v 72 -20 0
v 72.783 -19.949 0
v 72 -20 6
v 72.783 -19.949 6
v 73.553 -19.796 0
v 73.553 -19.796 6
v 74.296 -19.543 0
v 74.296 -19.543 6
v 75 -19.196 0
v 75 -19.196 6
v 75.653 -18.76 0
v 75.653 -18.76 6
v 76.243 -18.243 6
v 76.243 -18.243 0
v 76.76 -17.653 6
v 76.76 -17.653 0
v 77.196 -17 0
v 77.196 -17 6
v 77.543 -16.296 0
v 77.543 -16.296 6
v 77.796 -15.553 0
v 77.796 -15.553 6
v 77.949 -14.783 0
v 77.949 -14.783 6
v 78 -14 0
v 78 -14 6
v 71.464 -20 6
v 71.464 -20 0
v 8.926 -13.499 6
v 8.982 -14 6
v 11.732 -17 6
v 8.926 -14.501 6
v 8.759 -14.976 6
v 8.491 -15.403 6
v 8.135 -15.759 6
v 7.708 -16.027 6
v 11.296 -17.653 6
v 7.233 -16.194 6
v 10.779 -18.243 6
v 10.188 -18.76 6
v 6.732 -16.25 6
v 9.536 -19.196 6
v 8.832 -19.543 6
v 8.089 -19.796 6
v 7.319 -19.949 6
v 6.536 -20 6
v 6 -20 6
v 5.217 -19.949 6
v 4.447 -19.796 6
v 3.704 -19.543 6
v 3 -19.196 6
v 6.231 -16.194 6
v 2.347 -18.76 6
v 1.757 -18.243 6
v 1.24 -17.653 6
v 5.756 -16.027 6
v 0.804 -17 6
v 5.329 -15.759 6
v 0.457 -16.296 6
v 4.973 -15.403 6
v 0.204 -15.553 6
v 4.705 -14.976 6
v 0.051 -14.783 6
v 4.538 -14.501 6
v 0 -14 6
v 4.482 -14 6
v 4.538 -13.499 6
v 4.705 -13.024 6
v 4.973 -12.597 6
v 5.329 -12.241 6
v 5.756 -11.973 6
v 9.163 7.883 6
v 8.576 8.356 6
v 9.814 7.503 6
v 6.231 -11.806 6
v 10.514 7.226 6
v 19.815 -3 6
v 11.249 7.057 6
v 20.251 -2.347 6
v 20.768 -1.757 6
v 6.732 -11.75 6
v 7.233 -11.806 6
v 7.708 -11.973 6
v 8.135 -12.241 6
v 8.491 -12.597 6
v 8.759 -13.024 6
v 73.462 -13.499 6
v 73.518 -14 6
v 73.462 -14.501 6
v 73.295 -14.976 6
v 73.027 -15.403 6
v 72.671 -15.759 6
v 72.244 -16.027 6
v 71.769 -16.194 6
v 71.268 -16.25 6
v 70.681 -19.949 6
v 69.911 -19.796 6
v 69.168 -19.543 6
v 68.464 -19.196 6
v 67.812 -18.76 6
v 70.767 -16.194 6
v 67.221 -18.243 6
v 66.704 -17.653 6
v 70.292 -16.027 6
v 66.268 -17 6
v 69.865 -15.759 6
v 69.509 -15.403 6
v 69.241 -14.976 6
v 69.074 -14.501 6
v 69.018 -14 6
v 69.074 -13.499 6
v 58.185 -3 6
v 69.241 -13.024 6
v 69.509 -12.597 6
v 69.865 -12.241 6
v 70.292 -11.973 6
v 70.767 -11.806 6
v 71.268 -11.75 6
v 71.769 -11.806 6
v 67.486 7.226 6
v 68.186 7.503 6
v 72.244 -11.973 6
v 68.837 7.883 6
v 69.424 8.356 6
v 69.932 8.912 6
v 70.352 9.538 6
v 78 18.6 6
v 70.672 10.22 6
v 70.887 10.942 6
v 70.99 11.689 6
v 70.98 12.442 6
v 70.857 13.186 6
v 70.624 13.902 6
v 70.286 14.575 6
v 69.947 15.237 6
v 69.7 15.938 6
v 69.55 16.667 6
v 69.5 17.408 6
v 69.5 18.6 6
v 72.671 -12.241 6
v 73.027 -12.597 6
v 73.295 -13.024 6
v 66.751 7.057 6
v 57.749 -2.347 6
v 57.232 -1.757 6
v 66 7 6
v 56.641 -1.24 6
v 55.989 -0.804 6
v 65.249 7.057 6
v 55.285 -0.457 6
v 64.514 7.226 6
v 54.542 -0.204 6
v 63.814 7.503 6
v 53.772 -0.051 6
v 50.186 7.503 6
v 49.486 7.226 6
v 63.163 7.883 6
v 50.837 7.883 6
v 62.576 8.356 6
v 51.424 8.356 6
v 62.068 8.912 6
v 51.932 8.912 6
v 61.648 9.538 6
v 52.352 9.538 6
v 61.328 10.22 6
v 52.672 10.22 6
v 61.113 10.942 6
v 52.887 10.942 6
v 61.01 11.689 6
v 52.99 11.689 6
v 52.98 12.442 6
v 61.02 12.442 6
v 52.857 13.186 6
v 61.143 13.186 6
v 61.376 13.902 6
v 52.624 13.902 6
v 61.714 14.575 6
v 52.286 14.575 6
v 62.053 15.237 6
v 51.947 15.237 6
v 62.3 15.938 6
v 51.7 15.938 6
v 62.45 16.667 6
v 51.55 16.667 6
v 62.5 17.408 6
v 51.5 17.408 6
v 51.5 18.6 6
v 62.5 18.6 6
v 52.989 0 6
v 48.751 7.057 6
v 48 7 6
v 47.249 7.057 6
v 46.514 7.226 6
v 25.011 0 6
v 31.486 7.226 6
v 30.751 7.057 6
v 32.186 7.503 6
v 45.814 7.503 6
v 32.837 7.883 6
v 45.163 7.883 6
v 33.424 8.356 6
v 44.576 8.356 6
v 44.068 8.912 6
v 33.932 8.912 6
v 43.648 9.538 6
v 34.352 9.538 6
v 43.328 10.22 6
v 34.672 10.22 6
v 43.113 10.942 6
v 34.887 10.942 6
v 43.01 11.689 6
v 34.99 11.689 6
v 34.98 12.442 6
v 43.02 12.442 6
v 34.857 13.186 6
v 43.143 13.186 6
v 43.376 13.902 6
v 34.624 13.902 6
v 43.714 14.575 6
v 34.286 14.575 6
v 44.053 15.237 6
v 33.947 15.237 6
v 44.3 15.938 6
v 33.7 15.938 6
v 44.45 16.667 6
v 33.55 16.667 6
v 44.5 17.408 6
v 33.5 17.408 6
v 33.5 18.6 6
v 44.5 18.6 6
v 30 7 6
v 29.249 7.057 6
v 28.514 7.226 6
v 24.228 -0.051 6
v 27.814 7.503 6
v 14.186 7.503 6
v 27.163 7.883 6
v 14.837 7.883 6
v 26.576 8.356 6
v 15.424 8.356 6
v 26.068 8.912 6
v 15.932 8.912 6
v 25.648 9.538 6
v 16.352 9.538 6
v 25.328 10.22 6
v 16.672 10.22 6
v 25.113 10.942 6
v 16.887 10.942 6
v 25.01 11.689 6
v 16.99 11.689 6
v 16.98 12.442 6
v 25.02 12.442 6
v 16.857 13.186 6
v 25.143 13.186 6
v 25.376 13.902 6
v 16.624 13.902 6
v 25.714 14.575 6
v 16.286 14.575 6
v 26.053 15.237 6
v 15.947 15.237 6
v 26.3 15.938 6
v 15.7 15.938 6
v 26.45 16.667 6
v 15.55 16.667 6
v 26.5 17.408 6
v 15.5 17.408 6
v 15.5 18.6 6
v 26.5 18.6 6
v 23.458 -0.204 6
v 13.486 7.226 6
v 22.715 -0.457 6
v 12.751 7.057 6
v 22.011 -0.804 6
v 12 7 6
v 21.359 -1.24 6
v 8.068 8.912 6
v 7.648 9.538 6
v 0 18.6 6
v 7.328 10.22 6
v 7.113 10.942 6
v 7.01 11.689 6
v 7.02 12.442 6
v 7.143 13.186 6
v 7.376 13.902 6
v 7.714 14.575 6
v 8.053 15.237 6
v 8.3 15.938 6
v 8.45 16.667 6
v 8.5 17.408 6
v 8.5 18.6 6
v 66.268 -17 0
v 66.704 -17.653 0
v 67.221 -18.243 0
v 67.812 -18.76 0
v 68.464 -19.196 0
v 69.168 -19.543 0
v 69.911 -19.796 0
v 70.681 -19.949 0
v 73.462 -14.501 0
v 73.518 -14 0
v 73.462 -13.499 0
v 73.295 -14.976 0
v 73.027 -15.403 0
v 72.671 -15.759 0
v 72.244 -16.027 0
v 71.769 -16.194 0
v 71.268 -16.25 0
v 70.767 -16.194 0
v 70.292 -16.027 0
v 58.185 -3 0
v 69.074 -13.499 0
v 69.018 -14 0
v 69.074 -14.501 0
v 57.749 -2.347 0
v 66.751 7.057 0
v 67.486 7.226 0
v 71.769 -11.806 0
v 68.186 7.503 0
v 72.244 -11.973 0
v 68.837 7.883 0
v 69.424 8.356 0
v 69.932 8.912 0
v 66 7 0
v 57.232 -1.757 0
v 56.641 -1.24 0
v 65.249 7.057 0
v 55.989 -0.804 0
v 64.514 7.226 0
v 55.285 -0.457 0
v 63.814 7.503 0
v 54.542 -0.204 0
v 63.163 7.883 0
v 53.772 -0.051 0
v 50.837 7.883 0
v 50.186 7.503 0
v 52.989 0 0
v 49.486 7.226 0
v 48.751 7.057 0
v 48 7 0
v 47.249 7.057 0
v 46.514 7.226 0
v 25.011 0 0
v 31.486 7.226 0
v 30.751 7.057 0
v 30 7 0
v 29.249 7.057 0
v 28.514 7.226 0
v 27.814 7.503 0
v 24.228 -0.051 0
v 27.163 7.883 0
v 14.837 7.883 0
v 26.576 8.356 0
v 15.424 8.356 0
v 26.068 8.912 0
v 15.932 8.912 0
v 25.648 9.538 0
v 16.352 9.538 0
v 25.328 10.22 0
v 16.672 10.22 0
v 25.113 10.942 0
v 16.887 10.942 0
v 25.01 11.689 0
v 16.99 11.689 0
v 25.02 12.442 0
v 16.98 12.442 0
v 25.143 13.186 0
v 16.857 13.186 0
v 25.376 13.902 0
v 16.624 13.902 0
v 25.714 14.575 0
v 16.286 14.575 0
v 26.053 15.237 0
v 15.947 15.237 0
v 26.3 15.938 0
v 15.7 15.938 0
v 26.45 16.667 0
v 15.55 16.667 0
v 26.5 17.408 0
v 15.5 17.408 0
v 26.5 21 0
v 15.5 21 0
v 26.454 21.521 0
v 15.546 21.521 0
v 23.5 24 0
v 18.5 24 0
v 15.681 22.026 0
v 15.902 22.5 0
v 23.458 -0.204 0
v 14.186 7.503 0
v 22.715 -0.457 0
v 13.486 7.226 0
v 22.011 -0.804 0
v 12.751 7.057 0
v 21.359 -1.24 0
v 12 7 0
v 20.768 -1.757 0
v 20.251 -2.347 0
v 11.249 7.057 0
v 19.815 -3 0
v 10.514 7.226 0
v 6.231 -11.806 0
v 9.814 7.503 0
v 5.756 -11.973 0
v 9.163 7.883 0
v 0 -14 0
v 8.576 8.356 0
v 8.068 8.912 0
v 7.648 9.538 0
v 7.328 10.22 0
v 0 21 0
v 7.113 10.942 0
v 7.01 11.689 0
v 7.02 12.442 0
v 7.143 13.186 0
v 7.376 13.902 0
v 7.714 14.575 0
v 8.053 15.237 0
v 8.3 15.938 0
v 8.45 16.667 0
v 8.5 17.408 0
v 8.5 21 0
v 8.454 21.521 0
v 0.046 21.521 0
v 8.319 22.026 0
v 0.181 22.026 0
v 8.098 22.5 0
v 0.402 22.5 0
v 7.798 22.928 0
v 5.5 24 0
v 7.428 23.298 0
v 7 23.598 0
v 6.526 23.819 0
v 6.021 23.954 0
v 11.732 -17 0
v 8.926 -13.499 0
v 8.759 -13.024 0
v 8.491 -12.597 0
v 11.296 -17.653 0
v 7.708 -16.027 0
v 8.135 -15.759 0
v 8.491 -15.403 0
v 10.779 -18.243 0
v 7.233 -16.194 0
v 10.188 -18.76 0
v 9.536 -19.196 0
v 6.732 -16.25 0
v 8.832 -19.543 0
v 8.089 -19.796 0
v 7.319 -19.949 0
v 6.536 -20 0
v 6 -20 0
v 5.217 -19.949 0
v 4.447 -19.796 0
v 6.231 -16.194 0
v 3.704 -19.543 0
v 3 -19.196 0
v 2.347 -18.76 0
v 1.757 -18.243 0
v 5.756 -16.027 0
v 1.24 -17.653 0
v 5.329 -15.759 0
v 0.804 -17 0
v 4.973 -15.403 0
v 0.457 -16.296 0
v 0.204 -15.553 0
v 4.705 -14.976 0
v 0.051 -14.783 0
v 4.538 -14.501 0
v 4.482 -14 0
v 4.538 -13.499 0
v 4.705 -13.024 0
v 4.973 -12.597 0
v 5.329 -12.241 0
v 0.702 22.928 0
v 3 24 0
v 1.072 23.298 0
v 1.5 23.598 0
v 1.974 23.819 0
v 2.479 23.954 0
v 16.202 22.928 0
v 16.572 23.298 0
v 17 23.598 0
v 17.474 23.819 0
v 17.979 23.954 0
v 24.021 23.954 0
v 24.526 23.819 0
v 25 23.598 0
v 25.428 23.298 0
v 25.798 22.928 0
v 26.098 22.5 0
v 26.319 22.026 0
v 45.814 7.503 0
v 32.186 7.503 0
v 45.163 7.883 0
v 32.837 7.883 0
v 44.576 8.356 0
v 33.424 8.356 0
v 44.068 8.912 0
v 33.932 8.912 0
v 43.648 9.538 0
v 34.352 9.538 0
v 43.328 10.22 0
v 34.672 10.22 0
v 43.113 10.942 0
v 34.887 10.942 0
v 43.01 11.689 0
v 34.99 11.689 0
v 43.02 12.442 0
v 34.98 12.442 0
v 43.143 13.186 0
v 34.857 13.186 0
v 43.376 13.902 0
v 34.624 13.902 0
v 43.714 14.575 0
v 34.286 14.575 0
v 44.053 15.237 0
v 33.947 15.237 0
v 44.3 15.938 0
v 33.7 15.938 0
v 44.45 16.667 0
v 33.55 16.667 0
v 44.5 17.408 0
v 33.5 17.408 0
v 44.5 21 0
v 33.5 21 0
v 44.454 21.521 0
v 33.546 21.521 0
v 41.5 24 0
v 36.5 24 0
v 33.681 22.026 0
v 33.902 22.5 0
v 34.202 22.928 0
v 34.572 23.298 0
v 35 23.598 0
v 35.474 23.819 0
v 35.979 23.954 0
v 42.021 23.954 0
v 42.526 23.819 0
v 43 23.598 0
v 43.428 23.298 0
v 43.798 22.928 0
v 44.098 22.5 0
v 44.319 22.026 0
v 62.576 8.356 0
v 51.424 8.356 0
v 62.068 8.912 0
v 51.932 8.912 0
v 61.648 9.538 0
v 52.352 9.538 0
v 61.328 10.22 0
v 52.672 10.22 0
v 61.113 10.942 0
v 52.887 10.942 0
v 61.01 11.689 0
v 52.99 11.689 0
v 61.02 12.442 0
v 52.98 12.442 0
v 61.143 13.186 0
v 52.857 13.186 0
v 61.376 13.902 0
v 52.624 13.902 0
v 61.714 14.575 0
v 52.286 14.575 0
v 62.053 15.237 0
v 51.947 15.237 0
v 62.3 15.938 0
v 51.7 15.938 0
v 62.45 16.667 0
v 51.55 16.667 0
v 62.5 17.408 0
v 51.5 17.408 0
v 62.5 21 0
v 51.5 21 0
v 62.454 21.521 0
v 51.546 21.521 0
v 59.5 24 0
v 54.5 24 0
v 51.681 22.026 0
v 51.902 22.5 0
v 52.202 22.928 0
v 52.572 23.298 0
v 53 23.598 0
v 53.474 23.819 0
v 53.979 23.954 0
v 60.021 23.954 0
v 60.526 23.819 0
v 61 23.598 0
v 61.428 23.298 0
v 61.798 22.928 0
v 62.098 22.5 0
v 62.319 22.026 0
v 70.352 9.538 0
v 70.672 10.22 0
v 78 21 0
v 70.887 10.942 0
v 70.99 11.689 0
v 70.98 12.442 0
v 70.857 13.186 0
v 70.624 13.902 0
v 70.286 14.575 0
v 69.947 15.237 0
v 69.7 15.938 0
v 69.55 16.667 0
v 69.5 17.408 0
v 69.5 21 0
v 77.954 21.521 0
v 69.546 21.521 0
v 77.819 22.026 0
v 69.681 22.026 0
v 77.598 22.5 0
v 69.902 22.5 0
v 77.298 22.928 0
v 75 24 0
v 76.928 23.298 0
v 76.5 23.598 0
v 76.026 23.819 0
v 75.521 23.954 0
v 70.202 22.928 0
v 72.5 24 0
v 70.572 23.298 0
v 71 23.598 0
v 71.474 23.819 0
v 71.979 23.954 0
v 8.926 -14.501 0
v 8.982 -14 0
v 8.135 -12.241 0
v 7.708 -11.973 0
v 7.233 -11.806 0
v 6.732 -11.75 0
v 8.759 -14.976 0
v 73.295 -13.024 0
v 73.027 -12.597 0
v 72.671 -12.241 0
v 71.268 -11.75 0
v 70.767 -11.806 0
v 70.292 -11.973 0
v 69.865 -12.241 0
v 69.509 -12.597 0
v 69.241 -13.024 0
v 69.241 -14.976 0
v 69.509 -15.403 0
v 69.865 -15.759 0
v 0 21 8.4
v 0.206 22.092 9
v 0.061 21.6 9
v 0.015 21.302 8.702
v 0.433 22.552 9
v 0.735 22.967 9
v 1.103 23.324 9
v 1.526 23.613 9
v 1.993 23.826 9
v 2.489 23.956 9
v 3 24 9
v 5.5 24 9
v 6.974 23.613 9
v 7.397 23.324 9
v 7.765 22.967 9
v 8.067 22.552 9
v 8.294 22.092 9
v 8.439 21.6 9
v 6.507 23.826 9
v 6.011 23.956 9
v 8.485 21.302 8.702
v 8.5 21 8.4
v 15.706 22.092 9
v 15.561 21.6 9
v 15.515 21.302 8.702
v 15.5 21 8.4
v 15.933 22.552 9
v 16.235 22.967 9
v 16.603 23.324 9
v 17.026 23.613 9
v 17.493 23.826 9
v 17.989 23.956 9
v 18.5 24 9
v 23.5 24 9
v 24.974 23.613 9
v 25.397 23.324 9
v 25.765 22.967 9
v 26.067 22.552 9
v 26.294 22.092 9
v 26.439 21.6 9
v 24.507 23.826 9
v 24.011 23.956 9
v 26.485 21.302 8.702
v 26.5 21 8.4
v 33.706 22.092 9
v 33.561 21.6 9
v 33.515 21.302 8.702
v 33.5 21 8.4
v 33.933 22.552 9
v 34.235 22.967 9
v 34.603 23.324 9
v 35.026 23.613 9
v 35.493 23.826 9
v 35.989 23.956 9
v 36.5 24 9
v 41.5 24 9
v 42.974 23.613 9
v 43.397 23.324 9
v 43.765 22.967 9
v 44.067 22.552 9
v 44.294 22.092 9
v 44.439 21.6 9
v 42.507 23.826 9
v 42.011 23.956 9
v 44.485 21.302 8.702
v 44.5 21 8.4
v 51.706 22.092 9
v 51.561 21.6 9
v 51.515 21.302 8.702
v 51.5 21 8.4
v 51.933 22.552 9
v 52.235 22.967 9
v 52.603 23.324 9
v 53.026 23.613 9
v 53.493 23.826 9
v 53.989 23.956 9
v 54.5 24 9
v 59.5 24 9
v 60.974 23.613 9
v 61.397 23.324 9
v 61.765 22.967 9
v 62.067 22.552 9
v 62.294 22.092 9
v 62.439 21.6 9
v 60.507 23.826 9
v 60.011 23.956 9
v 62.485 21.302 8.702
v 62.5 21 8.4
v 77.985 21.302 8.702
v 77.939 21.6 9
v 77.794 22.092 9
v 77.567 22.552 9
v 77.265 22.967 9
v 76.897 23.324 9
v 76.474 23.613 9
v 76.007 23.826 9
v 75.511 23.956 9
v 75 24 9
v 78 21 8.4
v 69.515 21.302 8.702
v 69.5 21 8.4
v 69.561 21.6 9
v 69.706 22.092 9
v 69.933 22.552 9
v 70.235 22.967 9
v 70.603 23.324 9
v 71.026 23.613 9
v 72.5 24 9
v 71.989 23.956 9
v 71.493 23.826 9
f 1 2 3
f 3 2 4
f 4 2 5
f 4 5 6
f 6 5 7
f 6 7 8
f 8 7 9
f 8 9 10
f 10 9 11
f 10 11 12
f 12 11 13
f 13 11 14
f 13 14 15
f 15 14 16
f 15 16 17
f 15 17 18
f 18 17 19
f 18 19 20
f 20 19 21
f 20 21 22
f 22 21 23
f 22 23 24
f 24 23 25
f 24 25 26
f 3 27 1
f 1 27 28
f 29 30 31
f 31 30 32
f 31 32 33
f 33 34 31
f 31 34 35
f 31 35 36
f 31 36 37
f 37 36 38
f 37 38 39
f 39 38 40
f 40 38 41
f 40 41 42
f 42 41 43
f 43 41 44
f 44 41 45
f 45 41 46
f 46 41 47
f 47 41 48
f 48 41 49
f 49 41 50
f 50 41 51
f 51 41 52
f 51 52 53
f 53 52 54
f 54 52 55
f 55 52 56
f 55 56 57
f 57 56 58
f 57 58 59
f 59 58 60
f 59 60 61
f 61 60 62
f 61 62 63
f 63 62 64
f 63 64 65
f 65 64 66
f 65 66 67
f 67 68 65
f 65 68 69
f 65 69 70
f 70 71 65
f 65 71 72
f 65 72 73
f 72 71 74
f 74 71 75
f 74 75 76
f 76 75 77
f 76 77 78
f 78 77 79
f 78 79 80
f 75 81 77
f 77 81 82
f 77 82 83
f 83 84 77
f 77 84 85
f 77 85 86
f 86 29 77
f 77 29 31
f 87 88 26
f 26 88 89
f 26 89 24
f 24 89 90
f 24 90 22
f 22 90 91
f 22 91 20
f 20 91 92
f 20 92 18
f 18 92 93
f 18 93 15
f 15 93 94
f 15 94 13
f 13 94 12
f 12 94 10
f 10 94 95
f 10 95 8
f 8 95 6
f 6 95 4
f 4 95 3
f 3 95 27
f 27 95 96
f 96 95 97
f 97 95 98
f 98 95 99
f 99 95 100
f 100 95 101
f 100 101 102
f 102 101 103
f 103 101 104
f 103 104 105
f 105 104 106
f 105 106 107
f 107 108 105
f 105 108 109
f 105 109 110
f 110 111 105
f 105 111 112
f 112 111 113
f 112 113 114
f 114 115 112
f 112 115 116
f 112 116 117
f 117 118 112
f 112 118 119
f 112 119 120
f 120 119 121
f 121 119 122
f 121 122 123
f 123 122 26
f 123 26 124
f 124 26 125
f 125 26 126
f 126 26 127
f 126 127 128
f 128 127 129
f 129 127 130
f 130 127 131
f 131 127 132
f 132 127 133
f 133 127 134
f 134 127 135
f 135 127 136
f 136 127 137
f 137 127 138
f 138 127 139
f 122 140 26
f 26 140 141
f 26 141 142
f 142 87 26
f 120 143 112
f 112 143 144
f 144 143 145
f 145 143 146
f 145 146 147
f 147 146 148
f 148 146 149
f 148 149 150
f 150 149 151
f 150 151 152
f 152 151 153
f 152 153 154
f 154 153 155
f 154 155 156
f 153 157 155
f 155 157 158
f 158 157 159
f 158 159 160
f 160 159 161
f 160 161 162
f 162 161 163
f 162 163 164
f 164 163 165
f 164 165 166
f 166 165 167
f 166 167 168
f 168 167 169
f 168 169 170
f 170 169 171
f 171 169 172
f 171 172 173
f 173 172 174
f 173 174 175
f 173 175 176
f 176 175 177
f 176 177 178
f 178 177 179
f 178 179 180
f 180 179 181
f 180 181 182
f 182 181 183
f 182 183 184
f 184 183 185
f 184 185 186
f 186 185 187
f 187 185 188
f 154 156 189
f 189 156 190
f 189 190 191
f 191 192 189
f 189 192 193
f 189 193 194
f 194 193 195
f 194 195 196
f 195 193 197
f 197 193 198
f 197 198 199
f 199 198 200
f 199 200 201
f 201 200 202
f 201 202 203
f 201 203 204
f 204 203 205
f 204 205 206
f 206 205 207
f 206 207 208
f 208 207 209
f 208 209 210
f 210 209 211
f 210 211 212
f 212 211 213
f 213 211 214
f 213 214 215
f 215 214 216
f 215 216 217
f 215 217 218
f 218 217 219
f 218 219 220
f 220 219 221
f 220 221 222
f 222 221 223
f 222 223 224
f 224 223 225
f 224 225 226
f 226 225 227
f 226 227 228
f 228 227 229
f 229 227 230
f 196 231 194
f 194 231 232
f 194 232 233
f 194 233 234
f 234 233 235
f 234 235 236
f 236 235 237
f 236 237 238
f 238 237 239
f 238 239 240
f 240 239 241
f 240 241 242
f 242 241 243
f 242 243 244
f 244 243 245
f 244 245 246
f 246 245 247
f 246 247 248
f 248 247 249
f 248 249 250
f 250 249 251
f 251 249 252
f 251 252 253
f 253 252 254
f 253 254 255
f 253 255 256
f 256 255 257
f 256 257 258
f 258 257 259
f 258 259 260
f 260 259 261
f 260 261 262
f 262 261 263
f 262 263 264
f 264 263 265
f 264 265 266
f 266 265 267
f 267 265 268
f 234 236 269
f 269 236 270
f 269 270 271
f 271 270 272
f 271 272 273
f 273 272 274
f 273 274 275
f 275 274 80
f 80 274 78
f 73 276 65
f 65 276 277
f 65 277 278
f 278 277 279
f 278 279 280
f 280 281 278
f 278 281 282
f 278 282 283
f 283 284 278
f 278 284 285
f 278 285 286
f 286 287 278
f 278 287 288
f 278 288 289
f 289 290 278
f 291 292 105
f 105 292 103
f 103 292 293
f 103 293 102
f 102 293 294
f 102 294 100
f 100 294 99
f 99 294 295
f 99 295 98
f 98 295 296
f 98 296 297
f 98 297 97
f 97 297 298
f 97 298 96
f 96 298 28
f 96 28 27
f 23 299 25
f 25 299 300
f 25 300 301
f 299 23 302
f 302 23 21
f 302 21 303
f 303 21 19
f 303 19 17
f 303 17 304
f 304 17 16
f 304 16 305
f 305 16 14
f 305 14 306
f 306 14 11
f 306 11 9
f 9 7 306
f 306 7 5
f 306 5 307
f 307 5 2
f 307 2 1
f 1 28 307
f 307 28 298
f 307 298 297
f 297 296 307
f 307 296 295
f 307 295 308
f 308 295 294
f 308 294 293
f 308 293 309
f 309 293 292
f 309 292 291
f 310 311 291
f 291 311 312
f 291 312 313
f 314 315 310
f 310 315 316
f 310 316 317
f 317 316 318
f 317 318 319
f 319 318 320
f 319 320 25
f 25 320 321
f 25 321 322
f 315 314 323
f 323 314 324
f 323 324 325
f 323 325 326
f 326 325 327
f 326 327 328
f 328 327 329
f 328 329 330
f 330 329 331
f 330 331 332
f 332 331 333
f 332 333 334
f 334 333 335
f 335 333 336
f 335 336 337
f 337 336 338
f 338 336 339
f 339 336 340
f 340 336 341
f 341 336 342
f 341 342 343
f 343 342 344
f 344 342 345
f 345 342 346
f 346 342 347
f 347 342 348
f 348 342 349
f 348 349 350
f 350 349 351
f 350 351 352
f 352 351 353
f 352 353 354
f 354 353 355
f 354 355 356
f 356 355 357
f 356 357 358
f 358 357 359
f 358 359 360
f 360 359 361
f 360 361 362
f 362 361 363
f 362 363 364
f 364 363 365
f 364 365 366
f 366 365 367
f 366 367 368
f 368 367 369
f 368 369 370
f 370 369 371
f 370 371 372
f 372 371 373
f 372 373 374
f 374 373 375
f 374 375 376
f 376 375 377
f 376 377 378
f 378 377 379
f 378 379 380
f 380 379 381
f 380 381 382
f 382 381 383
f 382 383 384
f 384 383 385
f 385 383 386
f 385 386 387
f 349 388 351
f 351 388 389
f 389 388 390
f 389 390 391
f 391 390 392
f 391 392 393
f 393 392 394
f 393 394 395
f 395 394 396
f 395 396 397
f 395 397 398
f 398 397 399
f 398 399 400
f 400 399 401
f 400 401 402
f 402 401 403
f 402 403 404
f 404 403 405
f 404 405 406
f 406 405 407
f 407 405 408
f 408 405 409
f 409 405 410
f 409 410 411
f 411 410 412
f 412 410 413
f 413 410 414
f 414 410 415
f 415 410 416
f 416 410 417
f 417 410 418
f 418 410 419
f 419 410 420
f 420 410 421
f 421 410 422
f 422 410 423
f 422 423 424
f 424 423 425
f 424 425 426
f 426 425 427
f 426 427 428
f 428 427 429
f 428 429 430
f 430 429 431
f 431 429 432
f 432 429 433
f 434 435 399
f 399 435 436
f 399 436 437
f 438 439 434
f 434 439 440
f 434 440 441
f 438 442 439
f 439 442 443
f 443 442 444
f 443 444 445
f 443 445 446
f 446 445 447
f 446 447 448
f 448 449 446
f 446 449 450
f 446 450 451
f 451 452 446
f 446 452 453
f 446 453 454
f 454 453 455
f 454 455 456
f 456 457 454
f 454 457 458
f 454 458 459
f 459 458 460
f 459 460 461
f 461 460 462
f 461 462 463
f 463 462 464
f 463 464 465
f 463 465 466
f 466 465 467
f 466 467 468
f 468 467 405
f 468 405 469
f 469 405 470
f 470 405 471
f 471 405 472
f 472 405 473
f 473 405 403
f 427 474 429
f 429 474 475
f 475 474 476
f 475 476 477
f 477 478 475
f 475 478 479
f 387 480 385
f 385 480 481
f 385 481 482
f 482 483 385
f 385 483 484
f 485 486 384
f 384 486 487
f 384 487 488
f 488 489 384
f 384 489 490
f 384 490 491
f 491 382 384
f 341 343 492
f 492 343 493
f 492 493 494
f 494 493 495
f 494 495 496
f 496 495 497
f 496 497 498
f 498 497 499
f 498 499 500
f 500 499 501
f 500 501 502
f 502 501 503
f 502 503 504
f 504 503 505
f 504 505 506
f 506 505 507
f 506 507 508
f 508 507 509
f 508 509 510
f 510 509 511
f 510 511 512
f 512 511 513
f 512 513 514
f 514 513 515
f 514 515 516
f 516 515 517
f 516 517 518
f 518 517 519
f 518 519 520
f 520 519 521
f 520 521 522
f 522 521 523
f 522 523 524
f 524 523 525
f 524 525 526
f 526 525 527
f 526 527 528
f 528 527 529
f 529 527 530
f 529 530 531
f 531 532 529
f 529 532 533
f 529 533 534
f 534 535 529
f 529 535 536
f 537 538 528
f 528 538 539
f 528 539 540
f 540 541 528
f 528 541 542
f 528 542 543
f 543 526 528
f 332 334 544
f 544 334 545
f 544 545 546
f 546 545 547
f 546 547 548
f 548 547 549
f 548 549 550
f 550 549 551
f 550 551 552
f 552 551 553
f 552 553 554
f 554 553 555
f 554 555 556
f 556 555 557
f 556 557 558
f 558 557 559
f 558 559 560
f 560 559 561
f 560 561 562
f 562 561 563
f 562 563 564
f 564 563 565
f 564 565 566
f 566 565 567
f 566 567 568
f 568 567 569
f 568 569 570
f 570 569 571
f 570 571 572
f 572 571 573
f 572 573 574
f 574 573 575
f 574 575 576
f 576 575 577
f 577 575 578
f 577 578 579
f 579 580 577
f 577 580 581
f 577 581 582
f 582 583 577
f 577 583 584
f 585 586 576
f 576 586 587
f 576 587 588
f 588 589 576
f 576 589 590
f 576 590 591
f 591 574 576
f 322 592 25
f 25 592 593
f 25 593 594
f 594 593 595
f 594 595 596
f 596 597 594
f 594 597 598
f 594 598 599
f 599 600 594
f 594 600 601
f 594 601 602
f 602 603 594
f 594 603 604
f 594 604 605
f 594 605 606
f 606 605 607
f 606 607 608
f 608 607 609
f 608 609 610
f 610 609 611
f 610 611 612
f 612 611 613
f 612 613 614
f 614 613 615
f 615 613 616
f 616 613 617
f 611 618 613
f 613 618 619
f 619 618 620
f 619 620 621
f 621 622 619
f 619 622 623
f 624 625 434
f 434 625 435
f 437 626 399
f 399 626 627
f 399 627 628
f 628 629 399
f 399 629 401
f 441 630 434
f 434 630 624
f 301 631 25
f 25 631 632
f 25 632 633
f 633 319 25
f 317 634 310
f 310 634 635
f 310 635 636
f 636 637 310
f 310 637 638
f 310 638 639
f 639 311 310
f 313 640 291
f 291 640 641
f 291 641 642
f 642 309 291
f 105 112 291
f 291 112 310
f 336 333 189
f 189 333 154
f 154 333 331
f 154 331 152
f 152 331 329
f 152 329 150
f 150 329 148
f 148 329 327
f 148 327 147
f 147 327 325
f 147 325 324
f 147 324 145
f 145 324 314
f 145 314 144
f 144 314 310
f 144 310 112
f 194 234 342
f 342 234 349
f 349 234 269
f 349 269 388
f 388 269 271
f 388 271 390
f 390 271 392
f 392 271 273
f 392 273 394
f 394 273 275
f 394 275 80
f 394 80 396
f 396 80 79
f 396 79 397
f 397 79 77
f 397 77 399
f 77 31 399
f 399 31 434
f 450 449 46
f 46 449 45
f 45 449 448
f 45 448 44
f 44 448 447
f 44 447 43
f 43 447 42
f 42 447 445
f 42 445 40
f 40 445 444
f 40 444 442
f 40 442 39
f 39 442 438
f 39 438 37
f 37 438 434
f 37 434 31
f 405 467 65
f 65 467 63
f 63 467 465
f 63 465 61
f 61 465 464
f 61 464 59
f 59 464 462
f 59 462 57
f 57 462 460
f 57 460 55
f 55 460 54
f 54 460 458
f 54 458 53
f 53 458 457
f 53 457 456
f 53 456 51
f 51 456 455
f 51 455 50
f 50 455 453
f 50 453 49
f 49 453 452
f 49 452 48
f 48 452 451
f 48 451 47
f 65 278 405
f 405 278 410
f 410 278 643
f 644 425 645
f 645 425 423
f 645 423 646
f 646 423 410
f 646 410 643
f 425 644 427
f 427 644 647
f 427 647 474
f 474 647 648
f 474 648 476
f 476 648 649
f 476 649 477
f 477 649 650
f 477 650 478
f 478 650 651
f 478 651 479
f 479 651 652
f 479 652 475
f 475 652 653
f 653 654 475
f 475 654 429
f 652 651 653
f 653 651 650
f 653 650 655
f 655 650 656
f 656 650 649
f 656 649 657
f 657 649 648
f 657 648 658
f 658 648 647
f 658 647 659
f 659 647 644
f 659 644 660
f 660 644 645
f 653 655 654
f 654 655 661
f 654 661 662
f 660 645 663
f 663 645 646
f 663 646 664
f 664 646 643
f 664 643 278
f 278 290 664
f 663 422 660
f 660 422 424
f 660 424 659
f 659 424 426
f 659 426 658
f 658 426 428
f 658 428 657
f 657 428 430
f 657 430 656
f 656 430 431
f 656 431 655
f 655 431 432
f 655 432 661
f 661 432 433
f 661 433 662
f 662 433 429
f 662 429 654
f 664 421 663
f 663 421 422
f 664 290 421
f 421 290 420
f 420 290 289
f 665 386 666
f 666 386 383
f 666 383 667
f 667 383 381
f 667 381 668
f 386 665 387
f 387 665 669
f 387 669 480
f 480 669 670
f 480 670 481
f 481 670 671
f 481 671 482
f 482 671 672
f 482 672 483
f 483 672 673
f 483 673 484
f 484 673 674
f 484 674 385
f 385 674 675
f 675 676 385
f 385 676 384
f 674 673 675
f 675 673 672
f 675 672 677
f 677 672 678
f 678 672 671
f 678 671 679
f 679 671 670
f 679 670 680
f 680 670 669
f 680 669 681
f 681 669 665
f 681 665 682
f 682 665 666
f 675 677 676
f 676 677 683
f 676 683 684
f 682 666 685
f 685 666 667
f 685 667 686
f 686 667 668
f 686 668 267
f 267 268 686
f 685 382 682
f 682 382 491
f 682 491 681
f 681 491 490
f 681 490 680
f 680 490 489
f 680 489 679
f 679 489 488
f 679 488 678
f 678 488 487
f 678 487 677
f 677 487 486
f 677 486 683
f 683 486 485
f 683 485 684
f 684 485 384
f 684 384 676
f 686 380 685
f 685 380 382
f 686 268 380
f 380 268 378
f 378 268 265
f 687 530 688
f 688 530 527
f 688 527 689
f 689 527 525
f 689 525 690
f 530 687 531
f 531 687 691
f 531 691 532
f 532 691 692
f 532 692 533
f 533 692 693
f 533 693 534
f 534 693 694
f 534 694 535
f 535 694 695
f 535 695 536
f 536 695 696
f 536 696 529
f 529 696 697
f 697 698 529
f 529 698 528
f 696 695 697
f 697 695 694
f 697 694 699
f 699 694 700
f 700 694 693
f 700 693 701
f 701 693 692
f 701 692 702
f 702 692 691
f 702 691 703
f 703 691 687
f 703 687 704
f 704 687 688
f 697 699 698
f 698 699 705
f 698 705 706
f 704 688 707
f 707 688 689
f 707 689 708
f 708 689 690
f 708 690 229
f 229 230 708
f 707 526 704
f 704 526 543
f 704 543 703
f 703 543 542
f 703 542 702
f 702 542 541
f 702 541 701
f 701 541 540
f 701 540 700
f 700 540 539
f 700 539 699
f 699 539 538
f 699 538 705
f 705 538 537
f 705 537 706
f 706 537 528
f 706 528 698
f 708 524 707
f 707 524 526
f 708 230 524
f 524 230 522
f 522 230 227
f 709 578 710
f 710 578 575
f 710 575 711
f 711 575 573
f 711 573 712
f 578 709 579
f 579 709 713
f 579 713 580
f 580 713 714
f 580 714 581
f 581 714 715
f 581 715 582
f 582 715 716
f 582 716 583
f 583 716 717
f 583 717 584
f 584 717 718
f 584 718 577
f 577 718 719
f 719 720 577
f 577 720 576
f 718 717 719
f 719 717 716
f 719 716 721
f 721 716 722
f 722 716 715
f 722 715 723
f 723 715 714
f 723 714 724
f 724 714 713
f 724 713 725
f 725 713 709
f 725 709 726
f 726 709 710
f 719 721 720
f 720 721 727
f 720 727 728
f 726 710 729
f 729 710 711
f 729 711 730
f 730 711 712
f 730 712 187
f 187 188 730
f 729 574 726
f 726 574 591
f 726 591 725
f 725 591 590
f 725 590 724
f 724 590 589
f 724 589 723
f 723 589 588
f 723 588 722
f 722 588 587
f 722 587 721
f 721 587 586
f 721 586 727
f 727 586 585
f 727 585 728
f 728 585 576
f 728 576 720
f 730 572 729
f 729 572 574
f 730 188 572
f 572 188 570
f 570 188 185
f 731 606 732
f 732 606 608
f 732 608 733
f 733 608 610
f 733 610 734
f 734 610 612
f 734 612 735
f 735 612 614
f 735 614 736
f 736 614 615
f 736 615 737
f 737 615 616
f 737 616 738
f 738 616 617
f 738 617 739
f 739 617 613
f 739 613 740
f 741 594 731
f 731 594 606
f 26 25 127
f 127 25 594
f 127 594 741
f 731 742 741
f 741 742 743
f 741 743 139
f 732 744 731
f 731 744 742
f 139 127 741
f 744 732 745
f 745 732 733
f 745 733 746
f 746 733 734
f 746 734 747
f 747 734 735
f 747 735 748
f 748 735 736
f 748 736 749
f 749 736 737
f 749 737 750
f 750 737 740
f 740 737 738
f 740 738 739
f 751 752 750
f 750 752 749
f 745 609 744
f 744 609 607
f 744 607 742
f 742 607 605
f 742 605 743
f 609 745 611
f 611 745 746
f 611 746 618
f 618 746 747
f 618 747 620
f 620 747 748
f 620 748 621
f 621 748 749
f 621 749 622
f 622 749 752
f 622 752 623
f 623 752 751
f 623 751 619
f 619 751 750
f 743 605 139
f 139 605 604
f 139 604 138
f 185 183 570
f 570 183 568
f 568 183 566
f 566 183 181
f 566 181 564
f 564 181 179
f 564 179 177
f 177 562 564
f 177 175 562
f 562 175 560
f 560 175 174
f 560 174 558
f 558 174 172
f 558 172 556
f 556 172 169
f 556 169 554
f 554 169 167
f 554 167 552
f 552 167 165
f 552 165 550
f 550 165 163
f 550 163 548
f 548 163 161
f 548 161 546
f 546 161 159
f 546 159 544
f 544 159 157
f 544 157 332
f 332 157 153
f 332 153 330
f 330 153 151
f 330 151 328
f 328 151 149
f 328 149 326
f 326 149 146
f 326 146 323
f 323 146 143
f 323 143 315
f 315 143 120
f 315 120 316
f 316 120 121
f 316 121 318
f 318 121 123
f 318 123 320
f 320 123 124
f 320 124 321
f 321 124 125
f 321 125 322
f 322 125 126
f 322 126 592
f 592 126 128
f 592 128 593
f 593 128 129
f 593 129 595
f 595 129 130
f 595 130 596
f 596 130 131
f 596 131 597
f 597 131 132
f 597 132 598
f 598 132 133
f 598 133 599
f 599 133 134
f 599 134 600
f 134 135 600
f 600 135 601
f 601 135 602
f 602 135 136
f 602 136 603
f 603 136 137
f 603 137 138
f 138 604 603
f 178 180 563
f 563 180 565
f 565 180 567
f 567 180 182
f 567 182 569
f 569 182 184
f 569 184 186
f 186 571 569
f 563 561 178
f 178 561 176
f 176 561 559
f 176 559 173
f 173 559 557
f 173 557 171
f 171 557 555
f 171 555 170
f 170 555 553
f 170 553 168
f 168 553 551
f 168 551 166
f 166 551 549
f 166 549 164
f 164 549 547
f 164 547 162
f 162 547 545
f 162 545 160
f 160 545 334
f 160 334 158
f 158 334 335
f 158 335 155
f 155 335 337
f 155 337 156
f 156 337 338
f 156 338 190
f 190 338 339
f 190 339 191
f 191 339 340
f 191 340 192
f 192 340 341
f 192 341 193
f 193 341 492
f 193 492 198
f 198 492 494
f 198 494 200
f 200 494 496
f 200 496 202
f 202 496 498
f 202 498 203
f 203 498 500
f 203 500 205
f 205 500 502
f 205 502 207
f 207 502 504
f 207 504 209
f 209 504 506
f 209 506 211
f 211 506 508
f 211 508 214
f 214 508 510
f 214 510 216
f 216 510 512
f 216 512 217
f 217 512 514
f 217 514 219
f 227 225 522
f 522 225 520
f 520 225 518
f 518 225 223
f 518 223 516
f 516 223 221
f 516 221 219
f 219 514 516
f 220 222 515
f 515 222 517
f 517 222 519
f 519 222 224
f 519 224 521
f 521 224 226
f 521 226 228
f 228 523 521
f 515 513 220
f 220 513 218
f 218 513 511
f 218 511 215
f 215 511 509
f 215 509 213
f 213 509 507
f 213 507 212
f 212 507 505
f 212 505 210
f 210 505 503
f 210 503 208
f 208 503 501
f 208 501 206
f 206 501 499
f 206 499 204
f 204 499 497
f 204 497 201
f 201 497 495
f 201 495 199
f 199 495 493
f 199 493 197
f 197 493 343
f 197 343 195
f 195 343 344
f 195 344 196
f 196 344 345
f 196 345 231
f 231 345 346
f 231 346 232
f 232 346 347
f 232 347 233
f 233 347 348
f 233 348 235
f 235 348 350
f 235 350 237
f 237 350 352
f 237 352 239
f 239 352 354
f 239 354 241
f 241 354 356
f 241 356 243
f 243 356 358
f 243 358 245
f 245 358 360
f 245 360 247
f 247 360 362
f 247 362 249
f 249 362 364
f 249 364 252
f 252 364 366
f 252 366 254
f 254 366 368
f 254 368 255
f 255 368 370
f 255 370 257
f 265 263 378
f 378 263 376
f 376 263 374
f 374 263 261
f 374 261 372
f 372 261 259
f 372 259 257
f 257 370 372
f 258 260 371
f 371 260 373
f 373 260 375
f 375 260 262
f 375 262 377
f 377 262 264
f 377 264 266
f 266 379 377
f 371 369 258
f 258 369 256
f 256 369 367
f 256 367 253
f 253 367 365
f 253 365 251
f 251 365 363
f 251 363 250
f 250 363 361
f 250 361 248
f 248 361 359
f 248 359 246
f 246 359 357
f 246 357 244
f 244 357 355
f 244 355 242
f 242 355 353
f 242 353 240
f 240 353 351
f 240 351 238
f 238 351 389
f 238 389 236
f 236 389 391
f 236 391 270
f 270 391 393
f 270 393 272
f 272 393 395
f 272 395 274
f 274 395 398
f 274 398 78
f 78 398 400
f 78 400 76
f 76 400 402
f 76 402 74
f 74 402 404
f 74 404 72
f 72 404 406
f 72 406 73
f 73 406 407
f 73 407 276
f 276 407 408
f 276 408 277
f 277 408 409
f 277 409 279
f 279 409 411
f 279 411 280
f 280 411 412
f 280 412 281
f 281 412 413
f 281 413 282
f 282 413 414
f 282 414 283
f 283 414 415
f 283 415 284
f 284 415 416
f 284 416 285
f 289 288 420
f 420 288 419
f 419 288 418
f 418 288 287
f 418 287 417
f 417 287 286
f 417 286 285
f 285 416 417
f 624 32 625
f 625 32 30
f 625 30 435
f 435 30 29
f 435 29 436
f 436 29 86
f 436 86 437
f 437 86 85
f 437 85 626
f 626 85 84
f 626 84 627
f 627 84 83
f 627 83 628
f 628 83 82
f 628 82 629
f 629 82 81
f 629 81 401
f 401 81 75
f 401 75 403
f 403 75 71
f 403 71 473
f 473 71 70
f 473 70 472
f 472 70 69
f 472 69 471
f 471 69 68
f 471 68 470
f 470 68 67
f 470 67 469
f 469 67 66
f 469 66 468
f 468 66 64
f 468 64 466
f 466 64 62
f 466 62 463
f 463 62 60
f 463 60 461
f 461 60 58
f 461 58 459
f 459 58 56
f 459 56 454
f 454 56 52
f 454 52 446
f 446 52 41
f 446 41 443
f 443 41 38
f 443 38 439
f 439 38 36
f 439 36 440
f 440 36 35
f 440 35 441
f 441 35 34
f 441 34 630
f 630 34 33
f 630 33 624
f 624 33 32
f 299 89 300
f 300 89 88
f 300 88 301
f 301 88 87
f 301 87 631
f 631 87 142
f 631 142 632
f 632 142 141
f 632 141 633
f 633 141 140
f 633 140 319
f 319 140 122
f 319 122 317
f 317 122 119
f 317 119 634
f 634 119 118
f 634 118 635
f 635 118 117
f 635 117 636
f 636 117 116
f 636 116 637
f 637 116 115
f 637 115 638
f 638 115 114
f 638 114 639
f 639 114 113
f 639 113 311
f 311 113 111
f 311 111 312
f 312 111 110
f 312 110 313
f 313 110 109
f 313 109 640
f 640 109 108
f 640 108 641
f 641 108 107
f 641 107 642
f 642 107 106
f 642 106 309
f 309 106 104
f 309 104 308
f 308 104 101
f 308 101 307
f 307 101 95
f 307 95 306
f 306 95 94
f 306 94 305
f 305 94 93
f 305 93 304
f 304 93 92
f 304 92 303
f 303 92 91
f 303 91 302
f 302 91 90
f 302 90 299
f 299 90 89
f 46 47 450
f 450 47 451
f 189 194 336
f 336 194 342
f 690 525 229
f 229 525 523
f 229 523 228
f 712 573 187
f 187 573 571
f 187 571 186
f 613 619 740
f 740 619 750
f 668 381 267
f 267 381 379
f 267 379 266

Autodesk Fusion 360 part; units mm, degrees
sketch "Sketch1" plane through (0, 0, 0) normal (0, 0, 1) x (1, 0, 0)
  line L0 (0, 0) -> (78, 0)
  line L1 (78, 0) -> (78, 24)
  line L2 (0, 24) -> (0, 0)
  line L3 (12, 12) -> (12, 24) construction
  line L4 (8.5, 15.5707) -> (15.5, 15.5707) construction
  line L5 (8.5, 15.5707) -> (8.5, 24)
  line L6 (15.5, 15.5707) -> (15.5, 24)
  arc A0 (8.5, 15.5707) -> (15.5, 15.5707) centre (12, 12) ccw
  line L7 (8.5, 24) -> (0, 24)
  line L8 (33.5, 15.5707) -> (33.5, 24)
  line L9 (26.5, 15.5707) -> (26.5, 24)
  arc A1 (26.5, 15.5707) -> (33.5, 15.5707) centre (30, 12) ccw
  line L10 (51.5, 15.5707) -> (51.5, 24)
  line L11 (44.5, 15.5707) -> (44.5, 24)
  arc A2 (44.5, 15.5707) -> (51.5, 15.5707) centre (48, 12) ccw
  line L12 (69.5, 15.5707) -> (69.5, 24)
  line L13 (62.5, 15.5707) -> (62.5, 24)
  arc A3 (62.5, 15.5707) -> (69.5, 15.5707) centre (66, 12) ccw
  line L14 (26.5, 24) -> (15.5, 24)
  line L15 (44.5, 24) -> (33.5, 24)
  line L16 (78, 24) -> (69.5, 24)
  line L17 (62.5, 24) -> (51.5, 24)
  dimension "d1" = 10
  dimension "d3" = 12
  dimension "d4" = 12
  dimension "d5" = 3.5
  dimension "d6" = 3.5
  dimension "d7" = 12
  dimension "d10" = 18
  dimension "d11" = 0
  dimension "d12" = 12
extrude "Extrude1" add sketch "Sketch1" along normal blind 9
sketch "Sketch2" plane through (0, 0, 0) normal (-1, 0, 0) x (0, -1, 0)
  line L0 (-24, 0) -> (0, 0)
  line L1 (0, 0) -> (0, 9)
  line L2 (0, 9) -> (-24, 9)
  line L3 (-24, 9) -> (-24, 0)
  line L4 (-24, 9) -> (-16.9844, 9) construction
  line L5 (-18.6, 6) -> (0, 6)
  line L6 (-24, 9) -> (0, 9)
  line L7 (0, 6) -> (0, 9)
  line L8 (-24, 9) -> (-21.6, 9)
  line L9 (-18.6, 6) -> (-21.6, 9)
  dimension "d17" = 3
  dimension "d34" = 45
  dimension "d35" = 2.4
extrude "Extrude2" cut sketch "Sketch2" against normal through all contours L1 L2 L5 L6 L7 L9
sketch "Sketch3" plane through (0, 0, 6) normal (0, 0, 1) x (-1, 0, 0)
  line L0 (-15.5, -18.6) -> (-15.5, -15.5707)
  arc A0 (-8.5, -15.5707) -> (-15.5, -15.5707) centre (-12, -12) ccw
  line L1 (-8.5, -15.5707) -> (-8.5, -18.6)
  line L2 (0, -18.6) -> (0, 0)
  line L3 (0, 0) -> (-78, 0)
  line L4 (-78, 0) -> (-78, -18.6)
  line L5 (-69.5, -18.6) -> (-69.5, -15.5707)
  arc A1 (-62.5, -15.5707) -> (-69.5, -15.5707) centre (-66, -12) ccw
  line L6 (-62.5, -15.5707) -> (-62.5, -18.6)
  line L7 (-51.5, -18.6) -> (-51.5, -15.5707)
  arc A2 (-44.5, -15.5707) -> (-51.5, -15.5707) centre (-48, -12) ccw
  line L8 (-44.5, -15.5707) -> (-44.5, -18.6)
  line L9 (-33.5, -18.6) -> (-33.5, -15.5707)
  arc A3 (-26.5, -15.5707) -> (-33.5, -15.5707) centre (-30, -12) ccw
  line L10 (-26.5, -15.5707) -> (-26.5, -18.6)
  line L11 (0, 0) -> (0, 20)
  line L12 (0, 20) -> (-10, 20)
  line L13 (-10, 20) -> (-21.547, 0)
  line L14 (-78, 0) -> (-78, 20)
  line L15 (-78, 20) -> (-68, 20)
  line L16 (-68, 20) -> (-56.453, 0)
  line L17 (0, 0) -> (-21.547, 0)
  line L18 (-56.453, 0) -> (-78, 0)
  line L19 (-8.5, -18.6) -> (0, -18.6)
  line L20 (-78, -18.6) -> (-69.5, -18.6)
  line L21 (-62.5, -18.6) -> (-51.5, -18.6)
  line L22 (-44.5, -18.6) -> (-33.5, -18.6)
  line L23 (-26.5, -18.6) -> (-15.5, -18.6)
  dimension "d25" = 20
  dimension "d26" = 10
  dimension "d27" = 10
  dimension "d28" = 60
  dimension "d29" = 60
extrude "Extrude3" add sketch "Sketch3" against normal up to surface (6 mm away) contours L3 L11 L12 L13 L17 | L3 L14 L15 L16 L18
sketch "Sketch4" plane through (0, 0, 6) normal (0, 0, 1) x (-1, 0, 0)
  line L0 (-15.5, -18.6) -> (-15.5, -15.5707)
  arc A0 (-8.5, -15.5707) -> (-15.5, -15.5707) centre (-12, -12) ccw
  line L1 (-8.5, -15.5707) -> (-8.5, -18.6)
  line L2 (-8.5, -18.6) -> (0, -18.6)
  line L3 (0, -18.6) -> (0, 20)
  line L4 (0, 20) -> (-10, 20)
  line L5 (-10, 20) -> (-21.547, 0)
  line L6 (-21.547, 0) -> (-56.453, 0)
  line L7 (-56.453, 0) -> (-68, 20)
  line L8 (-68, 20) -> (-78, 20)
  line L9 (-78, 20) -> (-78, -18.6)
  line L10 (-78, -18.6) -> (-69.5, -18.6)
  line L11 (-69.5, -18.6) -> (-69.5, -15.5707)
  arc A1 (-62.5, -15.5707) -> (-69.5, -15.5707) centre (-66, -12) ccw
  line L12 (-62.5, -15.5707) -> (-62.5, -18.6)
  line L13 (-62.5, -18.6) -> (-51.5, -18.6)
  line L14 (-51.5, -18.6) -> (-51.5, -15.5707)
  arc A2 (-44.5, -15.5707) -> (-51.5, -15.5707) centre (-48, -12) ccw
  line L15 (-44.5, -15.5707) -> (-44.5, -18.6)
  line L16 (-44.5, -18.6) -> (-33.5, -18.6)
  line L17 (-33.5, -18.6) -> (-33.5, -15.5707)
  arc A3 (-26.5, -15.5707) -> (-33.5, -15.5707) centre (-30, -12) ccw
  line L18 (-26.5, -15.5707) -> (-26.5, -18.6)
  line L19 (-26.5, -18.6) -> (-15.5, -18.6)
  circle A4 centre (-6.7321, 14) radius 2.25
  line L20 (0, 14) -> (-13.4641, 14) construction
  line L21 (-64.5359, 14) -> (-78, 14) construction
  circle A5 centre (-71.2679, 14) radius 2.25
  dimension "d36" = 4.5
  dimension "d37" = 6
  dimension "d38" = 4.5
extrude "Extrude5" cut sketch "Sketch4" against normal through all contours A4 | A5
fillet "Fillet1" radius 5.5 8 edges at (8.5, 15.5707, 3) (15.5, 15.5707, 3) (26.5, 15.5707, 3) (33.5, 15.5707, 3) (44.5, 15.5707, 3) (51.5, 15.5707, 3) (69.5, 15.5707, 3) (62.5, 15.5707, 3)
fillet "Fillet2" radius 3 10 edges at (69.5, 24, 4.5) (78, 24, 4.5) (62.5, 24, 4.5) (51.5, 24, 4.5) (44.5, 24, 4.5) (33.5, 24, 4.5) (26.5, 24, 4.5) (15.5, 24, 4.5) (8.5, 24, 4.5) (0, 24, 4.5)
fillet "Fillet3" radius 6 6 edges at (0, -20, 3) (10, -20, 3) (21.547, 0, 3) (56.453, 0, 3) (68, -20, 3) (78, -20, 3)
sketch "Sketch5" plane through (0, 0, 6) normal (0, 0, 1) x (-1, 0, 0)
  circle A0 centre (-6.7321, 14) radius 2.25
  circle A1 centre (-71.2679, 14) radius 2.25
  arc A2 (-72, 20) -> (-78, 14) centre (-72, 14) ccw
  line L0 (-78, 14) -> (-78, -18.6)
  line L1 (-78, -18.6) -> (-69.5, -18.6)
  line L2 (-69.5, -18.6) -> (-69.5, -17.4083)
  arc A3 (-69.5, -17.4083) -> (-70.2857, -14.5754) centre (-75, -17.4083) ccw
  arc A4 (-61.7143, -14.5754) -> (-70.2857, -14.5754) centre (-66, -12) ccw
  arc A5 (-61.7143, -14.5754) -> (-62.5, -17.4083) centre (-57, -17.4083) ccw
  line L3 (-62.5, -17.4083) -> (-62.5, -18.6)
  line L4 (-62.5, -18.6) -> (-51.5, -18.6)
  line L5 (-51.5, -18.6) -> (-51.5, -17.4083)
  arc A6 (-51.5, -17.4083) -> (-52.2857, -14.5754) centre (-57, -17.4083) ccw
  arc A7 (-43.7143, -14.5754) -> (-52.2857, -14.5754) centre (-48, -12) ccw
  arc A8 (-43.7143, -14.5754) -> (-44.5, -17.4083) centre (-39, -17.4083) ccw
  line L6 (-44.5, -17.4083) -> (-44.5, -18.6)
  line L7 (-44.5, -18.6) -> (-33.5, -18.6)
  line L8 (-33.5, -18.6) -> (-33.5, -17.4083)
  arc A9 (-33.5, -17.4083) -> (-34.2857, -14.5754) centre (-39, -17.4083) ccw
  arc A10 (-25.7143, -14.5754) -> (-34.2857, -14.5754) centre (-30, -12) ccw
  arc A11 (-25.7143, -14.5754) -> (-26.5, -17.4083) centre (-21, -17.4083) ccw
  line L9 (-26.5, -17.4083) -> (-26.5, -18.6)
  line L10 (-26.5, -18.6) -> (-15.5, -18.6)
  line L11 (-15.5, -18.6) -> (-15.5, -17.4083)
  arc A12 (-15.5, -17.4083) -> (-16.2857, -14.5754) centre (-21, -17.4083) ccw
  arc A13 (-7.7143, -14.5754) -> (-16.2857, -14.5754) centre (-12, -12) ccw
  arc A14 (-7.7143, -14.5754) -> (-8.5, -17.4083) centre (-3, -17.4083) ccw
  line L12 (-8.5, -17.4083) -> (-8.5, -18.6)
  line L13 (-8.5, -18.6) -> (0, -18.6)
  line L14 (0, -18.6) -> (0, 14)
  arc A15 (0, 14) -> (-6, 20) centre (-6, 14) ccw
  line L15 (-6, 20) -> (-6.5359, 20)
  arc A16 (-6.5359, 20) -> (-11.7321, 17) centre (-6.5359, 14) ccw
  line L16 (-11.7321, 17) -> (-19.815, 3)
  arc A17 (-25.0111, 0) -> (-19.815, 3) centre (-25.0111, 6) ccw
  line L17 (-25.0111, 0) -> (-52.9889, 0)
  arc A18 (-58.185, 3) -> (-52.9889, 0) centre (-52.9889, 6) ccw
  line L18 (-58.185, 3) -> (-66.2679, 17)
  arc A19 (-66.2679, 17) -> (-71.4641, 20) centre (-71.4641, 14) ccw
  line L19 (-71.4641, 20) -> (-72, 20)
  line L20 (109.7465, 0) -> (-156.5967, 0)
  line L21 (-156.5967, 0) -> (-156.5967, 57.2242)
  line L22 (-156.5967, 57.2242) -> (109.7465, 57.2242)
  line L23 (109.7465, 57.2242) -> (109.7465, 0)
equation "d6 = d5"
equation "d27 = d26"
equation "d28 = 60 °"
equation "d29 = d28"
equation "d34 = 45 °"
